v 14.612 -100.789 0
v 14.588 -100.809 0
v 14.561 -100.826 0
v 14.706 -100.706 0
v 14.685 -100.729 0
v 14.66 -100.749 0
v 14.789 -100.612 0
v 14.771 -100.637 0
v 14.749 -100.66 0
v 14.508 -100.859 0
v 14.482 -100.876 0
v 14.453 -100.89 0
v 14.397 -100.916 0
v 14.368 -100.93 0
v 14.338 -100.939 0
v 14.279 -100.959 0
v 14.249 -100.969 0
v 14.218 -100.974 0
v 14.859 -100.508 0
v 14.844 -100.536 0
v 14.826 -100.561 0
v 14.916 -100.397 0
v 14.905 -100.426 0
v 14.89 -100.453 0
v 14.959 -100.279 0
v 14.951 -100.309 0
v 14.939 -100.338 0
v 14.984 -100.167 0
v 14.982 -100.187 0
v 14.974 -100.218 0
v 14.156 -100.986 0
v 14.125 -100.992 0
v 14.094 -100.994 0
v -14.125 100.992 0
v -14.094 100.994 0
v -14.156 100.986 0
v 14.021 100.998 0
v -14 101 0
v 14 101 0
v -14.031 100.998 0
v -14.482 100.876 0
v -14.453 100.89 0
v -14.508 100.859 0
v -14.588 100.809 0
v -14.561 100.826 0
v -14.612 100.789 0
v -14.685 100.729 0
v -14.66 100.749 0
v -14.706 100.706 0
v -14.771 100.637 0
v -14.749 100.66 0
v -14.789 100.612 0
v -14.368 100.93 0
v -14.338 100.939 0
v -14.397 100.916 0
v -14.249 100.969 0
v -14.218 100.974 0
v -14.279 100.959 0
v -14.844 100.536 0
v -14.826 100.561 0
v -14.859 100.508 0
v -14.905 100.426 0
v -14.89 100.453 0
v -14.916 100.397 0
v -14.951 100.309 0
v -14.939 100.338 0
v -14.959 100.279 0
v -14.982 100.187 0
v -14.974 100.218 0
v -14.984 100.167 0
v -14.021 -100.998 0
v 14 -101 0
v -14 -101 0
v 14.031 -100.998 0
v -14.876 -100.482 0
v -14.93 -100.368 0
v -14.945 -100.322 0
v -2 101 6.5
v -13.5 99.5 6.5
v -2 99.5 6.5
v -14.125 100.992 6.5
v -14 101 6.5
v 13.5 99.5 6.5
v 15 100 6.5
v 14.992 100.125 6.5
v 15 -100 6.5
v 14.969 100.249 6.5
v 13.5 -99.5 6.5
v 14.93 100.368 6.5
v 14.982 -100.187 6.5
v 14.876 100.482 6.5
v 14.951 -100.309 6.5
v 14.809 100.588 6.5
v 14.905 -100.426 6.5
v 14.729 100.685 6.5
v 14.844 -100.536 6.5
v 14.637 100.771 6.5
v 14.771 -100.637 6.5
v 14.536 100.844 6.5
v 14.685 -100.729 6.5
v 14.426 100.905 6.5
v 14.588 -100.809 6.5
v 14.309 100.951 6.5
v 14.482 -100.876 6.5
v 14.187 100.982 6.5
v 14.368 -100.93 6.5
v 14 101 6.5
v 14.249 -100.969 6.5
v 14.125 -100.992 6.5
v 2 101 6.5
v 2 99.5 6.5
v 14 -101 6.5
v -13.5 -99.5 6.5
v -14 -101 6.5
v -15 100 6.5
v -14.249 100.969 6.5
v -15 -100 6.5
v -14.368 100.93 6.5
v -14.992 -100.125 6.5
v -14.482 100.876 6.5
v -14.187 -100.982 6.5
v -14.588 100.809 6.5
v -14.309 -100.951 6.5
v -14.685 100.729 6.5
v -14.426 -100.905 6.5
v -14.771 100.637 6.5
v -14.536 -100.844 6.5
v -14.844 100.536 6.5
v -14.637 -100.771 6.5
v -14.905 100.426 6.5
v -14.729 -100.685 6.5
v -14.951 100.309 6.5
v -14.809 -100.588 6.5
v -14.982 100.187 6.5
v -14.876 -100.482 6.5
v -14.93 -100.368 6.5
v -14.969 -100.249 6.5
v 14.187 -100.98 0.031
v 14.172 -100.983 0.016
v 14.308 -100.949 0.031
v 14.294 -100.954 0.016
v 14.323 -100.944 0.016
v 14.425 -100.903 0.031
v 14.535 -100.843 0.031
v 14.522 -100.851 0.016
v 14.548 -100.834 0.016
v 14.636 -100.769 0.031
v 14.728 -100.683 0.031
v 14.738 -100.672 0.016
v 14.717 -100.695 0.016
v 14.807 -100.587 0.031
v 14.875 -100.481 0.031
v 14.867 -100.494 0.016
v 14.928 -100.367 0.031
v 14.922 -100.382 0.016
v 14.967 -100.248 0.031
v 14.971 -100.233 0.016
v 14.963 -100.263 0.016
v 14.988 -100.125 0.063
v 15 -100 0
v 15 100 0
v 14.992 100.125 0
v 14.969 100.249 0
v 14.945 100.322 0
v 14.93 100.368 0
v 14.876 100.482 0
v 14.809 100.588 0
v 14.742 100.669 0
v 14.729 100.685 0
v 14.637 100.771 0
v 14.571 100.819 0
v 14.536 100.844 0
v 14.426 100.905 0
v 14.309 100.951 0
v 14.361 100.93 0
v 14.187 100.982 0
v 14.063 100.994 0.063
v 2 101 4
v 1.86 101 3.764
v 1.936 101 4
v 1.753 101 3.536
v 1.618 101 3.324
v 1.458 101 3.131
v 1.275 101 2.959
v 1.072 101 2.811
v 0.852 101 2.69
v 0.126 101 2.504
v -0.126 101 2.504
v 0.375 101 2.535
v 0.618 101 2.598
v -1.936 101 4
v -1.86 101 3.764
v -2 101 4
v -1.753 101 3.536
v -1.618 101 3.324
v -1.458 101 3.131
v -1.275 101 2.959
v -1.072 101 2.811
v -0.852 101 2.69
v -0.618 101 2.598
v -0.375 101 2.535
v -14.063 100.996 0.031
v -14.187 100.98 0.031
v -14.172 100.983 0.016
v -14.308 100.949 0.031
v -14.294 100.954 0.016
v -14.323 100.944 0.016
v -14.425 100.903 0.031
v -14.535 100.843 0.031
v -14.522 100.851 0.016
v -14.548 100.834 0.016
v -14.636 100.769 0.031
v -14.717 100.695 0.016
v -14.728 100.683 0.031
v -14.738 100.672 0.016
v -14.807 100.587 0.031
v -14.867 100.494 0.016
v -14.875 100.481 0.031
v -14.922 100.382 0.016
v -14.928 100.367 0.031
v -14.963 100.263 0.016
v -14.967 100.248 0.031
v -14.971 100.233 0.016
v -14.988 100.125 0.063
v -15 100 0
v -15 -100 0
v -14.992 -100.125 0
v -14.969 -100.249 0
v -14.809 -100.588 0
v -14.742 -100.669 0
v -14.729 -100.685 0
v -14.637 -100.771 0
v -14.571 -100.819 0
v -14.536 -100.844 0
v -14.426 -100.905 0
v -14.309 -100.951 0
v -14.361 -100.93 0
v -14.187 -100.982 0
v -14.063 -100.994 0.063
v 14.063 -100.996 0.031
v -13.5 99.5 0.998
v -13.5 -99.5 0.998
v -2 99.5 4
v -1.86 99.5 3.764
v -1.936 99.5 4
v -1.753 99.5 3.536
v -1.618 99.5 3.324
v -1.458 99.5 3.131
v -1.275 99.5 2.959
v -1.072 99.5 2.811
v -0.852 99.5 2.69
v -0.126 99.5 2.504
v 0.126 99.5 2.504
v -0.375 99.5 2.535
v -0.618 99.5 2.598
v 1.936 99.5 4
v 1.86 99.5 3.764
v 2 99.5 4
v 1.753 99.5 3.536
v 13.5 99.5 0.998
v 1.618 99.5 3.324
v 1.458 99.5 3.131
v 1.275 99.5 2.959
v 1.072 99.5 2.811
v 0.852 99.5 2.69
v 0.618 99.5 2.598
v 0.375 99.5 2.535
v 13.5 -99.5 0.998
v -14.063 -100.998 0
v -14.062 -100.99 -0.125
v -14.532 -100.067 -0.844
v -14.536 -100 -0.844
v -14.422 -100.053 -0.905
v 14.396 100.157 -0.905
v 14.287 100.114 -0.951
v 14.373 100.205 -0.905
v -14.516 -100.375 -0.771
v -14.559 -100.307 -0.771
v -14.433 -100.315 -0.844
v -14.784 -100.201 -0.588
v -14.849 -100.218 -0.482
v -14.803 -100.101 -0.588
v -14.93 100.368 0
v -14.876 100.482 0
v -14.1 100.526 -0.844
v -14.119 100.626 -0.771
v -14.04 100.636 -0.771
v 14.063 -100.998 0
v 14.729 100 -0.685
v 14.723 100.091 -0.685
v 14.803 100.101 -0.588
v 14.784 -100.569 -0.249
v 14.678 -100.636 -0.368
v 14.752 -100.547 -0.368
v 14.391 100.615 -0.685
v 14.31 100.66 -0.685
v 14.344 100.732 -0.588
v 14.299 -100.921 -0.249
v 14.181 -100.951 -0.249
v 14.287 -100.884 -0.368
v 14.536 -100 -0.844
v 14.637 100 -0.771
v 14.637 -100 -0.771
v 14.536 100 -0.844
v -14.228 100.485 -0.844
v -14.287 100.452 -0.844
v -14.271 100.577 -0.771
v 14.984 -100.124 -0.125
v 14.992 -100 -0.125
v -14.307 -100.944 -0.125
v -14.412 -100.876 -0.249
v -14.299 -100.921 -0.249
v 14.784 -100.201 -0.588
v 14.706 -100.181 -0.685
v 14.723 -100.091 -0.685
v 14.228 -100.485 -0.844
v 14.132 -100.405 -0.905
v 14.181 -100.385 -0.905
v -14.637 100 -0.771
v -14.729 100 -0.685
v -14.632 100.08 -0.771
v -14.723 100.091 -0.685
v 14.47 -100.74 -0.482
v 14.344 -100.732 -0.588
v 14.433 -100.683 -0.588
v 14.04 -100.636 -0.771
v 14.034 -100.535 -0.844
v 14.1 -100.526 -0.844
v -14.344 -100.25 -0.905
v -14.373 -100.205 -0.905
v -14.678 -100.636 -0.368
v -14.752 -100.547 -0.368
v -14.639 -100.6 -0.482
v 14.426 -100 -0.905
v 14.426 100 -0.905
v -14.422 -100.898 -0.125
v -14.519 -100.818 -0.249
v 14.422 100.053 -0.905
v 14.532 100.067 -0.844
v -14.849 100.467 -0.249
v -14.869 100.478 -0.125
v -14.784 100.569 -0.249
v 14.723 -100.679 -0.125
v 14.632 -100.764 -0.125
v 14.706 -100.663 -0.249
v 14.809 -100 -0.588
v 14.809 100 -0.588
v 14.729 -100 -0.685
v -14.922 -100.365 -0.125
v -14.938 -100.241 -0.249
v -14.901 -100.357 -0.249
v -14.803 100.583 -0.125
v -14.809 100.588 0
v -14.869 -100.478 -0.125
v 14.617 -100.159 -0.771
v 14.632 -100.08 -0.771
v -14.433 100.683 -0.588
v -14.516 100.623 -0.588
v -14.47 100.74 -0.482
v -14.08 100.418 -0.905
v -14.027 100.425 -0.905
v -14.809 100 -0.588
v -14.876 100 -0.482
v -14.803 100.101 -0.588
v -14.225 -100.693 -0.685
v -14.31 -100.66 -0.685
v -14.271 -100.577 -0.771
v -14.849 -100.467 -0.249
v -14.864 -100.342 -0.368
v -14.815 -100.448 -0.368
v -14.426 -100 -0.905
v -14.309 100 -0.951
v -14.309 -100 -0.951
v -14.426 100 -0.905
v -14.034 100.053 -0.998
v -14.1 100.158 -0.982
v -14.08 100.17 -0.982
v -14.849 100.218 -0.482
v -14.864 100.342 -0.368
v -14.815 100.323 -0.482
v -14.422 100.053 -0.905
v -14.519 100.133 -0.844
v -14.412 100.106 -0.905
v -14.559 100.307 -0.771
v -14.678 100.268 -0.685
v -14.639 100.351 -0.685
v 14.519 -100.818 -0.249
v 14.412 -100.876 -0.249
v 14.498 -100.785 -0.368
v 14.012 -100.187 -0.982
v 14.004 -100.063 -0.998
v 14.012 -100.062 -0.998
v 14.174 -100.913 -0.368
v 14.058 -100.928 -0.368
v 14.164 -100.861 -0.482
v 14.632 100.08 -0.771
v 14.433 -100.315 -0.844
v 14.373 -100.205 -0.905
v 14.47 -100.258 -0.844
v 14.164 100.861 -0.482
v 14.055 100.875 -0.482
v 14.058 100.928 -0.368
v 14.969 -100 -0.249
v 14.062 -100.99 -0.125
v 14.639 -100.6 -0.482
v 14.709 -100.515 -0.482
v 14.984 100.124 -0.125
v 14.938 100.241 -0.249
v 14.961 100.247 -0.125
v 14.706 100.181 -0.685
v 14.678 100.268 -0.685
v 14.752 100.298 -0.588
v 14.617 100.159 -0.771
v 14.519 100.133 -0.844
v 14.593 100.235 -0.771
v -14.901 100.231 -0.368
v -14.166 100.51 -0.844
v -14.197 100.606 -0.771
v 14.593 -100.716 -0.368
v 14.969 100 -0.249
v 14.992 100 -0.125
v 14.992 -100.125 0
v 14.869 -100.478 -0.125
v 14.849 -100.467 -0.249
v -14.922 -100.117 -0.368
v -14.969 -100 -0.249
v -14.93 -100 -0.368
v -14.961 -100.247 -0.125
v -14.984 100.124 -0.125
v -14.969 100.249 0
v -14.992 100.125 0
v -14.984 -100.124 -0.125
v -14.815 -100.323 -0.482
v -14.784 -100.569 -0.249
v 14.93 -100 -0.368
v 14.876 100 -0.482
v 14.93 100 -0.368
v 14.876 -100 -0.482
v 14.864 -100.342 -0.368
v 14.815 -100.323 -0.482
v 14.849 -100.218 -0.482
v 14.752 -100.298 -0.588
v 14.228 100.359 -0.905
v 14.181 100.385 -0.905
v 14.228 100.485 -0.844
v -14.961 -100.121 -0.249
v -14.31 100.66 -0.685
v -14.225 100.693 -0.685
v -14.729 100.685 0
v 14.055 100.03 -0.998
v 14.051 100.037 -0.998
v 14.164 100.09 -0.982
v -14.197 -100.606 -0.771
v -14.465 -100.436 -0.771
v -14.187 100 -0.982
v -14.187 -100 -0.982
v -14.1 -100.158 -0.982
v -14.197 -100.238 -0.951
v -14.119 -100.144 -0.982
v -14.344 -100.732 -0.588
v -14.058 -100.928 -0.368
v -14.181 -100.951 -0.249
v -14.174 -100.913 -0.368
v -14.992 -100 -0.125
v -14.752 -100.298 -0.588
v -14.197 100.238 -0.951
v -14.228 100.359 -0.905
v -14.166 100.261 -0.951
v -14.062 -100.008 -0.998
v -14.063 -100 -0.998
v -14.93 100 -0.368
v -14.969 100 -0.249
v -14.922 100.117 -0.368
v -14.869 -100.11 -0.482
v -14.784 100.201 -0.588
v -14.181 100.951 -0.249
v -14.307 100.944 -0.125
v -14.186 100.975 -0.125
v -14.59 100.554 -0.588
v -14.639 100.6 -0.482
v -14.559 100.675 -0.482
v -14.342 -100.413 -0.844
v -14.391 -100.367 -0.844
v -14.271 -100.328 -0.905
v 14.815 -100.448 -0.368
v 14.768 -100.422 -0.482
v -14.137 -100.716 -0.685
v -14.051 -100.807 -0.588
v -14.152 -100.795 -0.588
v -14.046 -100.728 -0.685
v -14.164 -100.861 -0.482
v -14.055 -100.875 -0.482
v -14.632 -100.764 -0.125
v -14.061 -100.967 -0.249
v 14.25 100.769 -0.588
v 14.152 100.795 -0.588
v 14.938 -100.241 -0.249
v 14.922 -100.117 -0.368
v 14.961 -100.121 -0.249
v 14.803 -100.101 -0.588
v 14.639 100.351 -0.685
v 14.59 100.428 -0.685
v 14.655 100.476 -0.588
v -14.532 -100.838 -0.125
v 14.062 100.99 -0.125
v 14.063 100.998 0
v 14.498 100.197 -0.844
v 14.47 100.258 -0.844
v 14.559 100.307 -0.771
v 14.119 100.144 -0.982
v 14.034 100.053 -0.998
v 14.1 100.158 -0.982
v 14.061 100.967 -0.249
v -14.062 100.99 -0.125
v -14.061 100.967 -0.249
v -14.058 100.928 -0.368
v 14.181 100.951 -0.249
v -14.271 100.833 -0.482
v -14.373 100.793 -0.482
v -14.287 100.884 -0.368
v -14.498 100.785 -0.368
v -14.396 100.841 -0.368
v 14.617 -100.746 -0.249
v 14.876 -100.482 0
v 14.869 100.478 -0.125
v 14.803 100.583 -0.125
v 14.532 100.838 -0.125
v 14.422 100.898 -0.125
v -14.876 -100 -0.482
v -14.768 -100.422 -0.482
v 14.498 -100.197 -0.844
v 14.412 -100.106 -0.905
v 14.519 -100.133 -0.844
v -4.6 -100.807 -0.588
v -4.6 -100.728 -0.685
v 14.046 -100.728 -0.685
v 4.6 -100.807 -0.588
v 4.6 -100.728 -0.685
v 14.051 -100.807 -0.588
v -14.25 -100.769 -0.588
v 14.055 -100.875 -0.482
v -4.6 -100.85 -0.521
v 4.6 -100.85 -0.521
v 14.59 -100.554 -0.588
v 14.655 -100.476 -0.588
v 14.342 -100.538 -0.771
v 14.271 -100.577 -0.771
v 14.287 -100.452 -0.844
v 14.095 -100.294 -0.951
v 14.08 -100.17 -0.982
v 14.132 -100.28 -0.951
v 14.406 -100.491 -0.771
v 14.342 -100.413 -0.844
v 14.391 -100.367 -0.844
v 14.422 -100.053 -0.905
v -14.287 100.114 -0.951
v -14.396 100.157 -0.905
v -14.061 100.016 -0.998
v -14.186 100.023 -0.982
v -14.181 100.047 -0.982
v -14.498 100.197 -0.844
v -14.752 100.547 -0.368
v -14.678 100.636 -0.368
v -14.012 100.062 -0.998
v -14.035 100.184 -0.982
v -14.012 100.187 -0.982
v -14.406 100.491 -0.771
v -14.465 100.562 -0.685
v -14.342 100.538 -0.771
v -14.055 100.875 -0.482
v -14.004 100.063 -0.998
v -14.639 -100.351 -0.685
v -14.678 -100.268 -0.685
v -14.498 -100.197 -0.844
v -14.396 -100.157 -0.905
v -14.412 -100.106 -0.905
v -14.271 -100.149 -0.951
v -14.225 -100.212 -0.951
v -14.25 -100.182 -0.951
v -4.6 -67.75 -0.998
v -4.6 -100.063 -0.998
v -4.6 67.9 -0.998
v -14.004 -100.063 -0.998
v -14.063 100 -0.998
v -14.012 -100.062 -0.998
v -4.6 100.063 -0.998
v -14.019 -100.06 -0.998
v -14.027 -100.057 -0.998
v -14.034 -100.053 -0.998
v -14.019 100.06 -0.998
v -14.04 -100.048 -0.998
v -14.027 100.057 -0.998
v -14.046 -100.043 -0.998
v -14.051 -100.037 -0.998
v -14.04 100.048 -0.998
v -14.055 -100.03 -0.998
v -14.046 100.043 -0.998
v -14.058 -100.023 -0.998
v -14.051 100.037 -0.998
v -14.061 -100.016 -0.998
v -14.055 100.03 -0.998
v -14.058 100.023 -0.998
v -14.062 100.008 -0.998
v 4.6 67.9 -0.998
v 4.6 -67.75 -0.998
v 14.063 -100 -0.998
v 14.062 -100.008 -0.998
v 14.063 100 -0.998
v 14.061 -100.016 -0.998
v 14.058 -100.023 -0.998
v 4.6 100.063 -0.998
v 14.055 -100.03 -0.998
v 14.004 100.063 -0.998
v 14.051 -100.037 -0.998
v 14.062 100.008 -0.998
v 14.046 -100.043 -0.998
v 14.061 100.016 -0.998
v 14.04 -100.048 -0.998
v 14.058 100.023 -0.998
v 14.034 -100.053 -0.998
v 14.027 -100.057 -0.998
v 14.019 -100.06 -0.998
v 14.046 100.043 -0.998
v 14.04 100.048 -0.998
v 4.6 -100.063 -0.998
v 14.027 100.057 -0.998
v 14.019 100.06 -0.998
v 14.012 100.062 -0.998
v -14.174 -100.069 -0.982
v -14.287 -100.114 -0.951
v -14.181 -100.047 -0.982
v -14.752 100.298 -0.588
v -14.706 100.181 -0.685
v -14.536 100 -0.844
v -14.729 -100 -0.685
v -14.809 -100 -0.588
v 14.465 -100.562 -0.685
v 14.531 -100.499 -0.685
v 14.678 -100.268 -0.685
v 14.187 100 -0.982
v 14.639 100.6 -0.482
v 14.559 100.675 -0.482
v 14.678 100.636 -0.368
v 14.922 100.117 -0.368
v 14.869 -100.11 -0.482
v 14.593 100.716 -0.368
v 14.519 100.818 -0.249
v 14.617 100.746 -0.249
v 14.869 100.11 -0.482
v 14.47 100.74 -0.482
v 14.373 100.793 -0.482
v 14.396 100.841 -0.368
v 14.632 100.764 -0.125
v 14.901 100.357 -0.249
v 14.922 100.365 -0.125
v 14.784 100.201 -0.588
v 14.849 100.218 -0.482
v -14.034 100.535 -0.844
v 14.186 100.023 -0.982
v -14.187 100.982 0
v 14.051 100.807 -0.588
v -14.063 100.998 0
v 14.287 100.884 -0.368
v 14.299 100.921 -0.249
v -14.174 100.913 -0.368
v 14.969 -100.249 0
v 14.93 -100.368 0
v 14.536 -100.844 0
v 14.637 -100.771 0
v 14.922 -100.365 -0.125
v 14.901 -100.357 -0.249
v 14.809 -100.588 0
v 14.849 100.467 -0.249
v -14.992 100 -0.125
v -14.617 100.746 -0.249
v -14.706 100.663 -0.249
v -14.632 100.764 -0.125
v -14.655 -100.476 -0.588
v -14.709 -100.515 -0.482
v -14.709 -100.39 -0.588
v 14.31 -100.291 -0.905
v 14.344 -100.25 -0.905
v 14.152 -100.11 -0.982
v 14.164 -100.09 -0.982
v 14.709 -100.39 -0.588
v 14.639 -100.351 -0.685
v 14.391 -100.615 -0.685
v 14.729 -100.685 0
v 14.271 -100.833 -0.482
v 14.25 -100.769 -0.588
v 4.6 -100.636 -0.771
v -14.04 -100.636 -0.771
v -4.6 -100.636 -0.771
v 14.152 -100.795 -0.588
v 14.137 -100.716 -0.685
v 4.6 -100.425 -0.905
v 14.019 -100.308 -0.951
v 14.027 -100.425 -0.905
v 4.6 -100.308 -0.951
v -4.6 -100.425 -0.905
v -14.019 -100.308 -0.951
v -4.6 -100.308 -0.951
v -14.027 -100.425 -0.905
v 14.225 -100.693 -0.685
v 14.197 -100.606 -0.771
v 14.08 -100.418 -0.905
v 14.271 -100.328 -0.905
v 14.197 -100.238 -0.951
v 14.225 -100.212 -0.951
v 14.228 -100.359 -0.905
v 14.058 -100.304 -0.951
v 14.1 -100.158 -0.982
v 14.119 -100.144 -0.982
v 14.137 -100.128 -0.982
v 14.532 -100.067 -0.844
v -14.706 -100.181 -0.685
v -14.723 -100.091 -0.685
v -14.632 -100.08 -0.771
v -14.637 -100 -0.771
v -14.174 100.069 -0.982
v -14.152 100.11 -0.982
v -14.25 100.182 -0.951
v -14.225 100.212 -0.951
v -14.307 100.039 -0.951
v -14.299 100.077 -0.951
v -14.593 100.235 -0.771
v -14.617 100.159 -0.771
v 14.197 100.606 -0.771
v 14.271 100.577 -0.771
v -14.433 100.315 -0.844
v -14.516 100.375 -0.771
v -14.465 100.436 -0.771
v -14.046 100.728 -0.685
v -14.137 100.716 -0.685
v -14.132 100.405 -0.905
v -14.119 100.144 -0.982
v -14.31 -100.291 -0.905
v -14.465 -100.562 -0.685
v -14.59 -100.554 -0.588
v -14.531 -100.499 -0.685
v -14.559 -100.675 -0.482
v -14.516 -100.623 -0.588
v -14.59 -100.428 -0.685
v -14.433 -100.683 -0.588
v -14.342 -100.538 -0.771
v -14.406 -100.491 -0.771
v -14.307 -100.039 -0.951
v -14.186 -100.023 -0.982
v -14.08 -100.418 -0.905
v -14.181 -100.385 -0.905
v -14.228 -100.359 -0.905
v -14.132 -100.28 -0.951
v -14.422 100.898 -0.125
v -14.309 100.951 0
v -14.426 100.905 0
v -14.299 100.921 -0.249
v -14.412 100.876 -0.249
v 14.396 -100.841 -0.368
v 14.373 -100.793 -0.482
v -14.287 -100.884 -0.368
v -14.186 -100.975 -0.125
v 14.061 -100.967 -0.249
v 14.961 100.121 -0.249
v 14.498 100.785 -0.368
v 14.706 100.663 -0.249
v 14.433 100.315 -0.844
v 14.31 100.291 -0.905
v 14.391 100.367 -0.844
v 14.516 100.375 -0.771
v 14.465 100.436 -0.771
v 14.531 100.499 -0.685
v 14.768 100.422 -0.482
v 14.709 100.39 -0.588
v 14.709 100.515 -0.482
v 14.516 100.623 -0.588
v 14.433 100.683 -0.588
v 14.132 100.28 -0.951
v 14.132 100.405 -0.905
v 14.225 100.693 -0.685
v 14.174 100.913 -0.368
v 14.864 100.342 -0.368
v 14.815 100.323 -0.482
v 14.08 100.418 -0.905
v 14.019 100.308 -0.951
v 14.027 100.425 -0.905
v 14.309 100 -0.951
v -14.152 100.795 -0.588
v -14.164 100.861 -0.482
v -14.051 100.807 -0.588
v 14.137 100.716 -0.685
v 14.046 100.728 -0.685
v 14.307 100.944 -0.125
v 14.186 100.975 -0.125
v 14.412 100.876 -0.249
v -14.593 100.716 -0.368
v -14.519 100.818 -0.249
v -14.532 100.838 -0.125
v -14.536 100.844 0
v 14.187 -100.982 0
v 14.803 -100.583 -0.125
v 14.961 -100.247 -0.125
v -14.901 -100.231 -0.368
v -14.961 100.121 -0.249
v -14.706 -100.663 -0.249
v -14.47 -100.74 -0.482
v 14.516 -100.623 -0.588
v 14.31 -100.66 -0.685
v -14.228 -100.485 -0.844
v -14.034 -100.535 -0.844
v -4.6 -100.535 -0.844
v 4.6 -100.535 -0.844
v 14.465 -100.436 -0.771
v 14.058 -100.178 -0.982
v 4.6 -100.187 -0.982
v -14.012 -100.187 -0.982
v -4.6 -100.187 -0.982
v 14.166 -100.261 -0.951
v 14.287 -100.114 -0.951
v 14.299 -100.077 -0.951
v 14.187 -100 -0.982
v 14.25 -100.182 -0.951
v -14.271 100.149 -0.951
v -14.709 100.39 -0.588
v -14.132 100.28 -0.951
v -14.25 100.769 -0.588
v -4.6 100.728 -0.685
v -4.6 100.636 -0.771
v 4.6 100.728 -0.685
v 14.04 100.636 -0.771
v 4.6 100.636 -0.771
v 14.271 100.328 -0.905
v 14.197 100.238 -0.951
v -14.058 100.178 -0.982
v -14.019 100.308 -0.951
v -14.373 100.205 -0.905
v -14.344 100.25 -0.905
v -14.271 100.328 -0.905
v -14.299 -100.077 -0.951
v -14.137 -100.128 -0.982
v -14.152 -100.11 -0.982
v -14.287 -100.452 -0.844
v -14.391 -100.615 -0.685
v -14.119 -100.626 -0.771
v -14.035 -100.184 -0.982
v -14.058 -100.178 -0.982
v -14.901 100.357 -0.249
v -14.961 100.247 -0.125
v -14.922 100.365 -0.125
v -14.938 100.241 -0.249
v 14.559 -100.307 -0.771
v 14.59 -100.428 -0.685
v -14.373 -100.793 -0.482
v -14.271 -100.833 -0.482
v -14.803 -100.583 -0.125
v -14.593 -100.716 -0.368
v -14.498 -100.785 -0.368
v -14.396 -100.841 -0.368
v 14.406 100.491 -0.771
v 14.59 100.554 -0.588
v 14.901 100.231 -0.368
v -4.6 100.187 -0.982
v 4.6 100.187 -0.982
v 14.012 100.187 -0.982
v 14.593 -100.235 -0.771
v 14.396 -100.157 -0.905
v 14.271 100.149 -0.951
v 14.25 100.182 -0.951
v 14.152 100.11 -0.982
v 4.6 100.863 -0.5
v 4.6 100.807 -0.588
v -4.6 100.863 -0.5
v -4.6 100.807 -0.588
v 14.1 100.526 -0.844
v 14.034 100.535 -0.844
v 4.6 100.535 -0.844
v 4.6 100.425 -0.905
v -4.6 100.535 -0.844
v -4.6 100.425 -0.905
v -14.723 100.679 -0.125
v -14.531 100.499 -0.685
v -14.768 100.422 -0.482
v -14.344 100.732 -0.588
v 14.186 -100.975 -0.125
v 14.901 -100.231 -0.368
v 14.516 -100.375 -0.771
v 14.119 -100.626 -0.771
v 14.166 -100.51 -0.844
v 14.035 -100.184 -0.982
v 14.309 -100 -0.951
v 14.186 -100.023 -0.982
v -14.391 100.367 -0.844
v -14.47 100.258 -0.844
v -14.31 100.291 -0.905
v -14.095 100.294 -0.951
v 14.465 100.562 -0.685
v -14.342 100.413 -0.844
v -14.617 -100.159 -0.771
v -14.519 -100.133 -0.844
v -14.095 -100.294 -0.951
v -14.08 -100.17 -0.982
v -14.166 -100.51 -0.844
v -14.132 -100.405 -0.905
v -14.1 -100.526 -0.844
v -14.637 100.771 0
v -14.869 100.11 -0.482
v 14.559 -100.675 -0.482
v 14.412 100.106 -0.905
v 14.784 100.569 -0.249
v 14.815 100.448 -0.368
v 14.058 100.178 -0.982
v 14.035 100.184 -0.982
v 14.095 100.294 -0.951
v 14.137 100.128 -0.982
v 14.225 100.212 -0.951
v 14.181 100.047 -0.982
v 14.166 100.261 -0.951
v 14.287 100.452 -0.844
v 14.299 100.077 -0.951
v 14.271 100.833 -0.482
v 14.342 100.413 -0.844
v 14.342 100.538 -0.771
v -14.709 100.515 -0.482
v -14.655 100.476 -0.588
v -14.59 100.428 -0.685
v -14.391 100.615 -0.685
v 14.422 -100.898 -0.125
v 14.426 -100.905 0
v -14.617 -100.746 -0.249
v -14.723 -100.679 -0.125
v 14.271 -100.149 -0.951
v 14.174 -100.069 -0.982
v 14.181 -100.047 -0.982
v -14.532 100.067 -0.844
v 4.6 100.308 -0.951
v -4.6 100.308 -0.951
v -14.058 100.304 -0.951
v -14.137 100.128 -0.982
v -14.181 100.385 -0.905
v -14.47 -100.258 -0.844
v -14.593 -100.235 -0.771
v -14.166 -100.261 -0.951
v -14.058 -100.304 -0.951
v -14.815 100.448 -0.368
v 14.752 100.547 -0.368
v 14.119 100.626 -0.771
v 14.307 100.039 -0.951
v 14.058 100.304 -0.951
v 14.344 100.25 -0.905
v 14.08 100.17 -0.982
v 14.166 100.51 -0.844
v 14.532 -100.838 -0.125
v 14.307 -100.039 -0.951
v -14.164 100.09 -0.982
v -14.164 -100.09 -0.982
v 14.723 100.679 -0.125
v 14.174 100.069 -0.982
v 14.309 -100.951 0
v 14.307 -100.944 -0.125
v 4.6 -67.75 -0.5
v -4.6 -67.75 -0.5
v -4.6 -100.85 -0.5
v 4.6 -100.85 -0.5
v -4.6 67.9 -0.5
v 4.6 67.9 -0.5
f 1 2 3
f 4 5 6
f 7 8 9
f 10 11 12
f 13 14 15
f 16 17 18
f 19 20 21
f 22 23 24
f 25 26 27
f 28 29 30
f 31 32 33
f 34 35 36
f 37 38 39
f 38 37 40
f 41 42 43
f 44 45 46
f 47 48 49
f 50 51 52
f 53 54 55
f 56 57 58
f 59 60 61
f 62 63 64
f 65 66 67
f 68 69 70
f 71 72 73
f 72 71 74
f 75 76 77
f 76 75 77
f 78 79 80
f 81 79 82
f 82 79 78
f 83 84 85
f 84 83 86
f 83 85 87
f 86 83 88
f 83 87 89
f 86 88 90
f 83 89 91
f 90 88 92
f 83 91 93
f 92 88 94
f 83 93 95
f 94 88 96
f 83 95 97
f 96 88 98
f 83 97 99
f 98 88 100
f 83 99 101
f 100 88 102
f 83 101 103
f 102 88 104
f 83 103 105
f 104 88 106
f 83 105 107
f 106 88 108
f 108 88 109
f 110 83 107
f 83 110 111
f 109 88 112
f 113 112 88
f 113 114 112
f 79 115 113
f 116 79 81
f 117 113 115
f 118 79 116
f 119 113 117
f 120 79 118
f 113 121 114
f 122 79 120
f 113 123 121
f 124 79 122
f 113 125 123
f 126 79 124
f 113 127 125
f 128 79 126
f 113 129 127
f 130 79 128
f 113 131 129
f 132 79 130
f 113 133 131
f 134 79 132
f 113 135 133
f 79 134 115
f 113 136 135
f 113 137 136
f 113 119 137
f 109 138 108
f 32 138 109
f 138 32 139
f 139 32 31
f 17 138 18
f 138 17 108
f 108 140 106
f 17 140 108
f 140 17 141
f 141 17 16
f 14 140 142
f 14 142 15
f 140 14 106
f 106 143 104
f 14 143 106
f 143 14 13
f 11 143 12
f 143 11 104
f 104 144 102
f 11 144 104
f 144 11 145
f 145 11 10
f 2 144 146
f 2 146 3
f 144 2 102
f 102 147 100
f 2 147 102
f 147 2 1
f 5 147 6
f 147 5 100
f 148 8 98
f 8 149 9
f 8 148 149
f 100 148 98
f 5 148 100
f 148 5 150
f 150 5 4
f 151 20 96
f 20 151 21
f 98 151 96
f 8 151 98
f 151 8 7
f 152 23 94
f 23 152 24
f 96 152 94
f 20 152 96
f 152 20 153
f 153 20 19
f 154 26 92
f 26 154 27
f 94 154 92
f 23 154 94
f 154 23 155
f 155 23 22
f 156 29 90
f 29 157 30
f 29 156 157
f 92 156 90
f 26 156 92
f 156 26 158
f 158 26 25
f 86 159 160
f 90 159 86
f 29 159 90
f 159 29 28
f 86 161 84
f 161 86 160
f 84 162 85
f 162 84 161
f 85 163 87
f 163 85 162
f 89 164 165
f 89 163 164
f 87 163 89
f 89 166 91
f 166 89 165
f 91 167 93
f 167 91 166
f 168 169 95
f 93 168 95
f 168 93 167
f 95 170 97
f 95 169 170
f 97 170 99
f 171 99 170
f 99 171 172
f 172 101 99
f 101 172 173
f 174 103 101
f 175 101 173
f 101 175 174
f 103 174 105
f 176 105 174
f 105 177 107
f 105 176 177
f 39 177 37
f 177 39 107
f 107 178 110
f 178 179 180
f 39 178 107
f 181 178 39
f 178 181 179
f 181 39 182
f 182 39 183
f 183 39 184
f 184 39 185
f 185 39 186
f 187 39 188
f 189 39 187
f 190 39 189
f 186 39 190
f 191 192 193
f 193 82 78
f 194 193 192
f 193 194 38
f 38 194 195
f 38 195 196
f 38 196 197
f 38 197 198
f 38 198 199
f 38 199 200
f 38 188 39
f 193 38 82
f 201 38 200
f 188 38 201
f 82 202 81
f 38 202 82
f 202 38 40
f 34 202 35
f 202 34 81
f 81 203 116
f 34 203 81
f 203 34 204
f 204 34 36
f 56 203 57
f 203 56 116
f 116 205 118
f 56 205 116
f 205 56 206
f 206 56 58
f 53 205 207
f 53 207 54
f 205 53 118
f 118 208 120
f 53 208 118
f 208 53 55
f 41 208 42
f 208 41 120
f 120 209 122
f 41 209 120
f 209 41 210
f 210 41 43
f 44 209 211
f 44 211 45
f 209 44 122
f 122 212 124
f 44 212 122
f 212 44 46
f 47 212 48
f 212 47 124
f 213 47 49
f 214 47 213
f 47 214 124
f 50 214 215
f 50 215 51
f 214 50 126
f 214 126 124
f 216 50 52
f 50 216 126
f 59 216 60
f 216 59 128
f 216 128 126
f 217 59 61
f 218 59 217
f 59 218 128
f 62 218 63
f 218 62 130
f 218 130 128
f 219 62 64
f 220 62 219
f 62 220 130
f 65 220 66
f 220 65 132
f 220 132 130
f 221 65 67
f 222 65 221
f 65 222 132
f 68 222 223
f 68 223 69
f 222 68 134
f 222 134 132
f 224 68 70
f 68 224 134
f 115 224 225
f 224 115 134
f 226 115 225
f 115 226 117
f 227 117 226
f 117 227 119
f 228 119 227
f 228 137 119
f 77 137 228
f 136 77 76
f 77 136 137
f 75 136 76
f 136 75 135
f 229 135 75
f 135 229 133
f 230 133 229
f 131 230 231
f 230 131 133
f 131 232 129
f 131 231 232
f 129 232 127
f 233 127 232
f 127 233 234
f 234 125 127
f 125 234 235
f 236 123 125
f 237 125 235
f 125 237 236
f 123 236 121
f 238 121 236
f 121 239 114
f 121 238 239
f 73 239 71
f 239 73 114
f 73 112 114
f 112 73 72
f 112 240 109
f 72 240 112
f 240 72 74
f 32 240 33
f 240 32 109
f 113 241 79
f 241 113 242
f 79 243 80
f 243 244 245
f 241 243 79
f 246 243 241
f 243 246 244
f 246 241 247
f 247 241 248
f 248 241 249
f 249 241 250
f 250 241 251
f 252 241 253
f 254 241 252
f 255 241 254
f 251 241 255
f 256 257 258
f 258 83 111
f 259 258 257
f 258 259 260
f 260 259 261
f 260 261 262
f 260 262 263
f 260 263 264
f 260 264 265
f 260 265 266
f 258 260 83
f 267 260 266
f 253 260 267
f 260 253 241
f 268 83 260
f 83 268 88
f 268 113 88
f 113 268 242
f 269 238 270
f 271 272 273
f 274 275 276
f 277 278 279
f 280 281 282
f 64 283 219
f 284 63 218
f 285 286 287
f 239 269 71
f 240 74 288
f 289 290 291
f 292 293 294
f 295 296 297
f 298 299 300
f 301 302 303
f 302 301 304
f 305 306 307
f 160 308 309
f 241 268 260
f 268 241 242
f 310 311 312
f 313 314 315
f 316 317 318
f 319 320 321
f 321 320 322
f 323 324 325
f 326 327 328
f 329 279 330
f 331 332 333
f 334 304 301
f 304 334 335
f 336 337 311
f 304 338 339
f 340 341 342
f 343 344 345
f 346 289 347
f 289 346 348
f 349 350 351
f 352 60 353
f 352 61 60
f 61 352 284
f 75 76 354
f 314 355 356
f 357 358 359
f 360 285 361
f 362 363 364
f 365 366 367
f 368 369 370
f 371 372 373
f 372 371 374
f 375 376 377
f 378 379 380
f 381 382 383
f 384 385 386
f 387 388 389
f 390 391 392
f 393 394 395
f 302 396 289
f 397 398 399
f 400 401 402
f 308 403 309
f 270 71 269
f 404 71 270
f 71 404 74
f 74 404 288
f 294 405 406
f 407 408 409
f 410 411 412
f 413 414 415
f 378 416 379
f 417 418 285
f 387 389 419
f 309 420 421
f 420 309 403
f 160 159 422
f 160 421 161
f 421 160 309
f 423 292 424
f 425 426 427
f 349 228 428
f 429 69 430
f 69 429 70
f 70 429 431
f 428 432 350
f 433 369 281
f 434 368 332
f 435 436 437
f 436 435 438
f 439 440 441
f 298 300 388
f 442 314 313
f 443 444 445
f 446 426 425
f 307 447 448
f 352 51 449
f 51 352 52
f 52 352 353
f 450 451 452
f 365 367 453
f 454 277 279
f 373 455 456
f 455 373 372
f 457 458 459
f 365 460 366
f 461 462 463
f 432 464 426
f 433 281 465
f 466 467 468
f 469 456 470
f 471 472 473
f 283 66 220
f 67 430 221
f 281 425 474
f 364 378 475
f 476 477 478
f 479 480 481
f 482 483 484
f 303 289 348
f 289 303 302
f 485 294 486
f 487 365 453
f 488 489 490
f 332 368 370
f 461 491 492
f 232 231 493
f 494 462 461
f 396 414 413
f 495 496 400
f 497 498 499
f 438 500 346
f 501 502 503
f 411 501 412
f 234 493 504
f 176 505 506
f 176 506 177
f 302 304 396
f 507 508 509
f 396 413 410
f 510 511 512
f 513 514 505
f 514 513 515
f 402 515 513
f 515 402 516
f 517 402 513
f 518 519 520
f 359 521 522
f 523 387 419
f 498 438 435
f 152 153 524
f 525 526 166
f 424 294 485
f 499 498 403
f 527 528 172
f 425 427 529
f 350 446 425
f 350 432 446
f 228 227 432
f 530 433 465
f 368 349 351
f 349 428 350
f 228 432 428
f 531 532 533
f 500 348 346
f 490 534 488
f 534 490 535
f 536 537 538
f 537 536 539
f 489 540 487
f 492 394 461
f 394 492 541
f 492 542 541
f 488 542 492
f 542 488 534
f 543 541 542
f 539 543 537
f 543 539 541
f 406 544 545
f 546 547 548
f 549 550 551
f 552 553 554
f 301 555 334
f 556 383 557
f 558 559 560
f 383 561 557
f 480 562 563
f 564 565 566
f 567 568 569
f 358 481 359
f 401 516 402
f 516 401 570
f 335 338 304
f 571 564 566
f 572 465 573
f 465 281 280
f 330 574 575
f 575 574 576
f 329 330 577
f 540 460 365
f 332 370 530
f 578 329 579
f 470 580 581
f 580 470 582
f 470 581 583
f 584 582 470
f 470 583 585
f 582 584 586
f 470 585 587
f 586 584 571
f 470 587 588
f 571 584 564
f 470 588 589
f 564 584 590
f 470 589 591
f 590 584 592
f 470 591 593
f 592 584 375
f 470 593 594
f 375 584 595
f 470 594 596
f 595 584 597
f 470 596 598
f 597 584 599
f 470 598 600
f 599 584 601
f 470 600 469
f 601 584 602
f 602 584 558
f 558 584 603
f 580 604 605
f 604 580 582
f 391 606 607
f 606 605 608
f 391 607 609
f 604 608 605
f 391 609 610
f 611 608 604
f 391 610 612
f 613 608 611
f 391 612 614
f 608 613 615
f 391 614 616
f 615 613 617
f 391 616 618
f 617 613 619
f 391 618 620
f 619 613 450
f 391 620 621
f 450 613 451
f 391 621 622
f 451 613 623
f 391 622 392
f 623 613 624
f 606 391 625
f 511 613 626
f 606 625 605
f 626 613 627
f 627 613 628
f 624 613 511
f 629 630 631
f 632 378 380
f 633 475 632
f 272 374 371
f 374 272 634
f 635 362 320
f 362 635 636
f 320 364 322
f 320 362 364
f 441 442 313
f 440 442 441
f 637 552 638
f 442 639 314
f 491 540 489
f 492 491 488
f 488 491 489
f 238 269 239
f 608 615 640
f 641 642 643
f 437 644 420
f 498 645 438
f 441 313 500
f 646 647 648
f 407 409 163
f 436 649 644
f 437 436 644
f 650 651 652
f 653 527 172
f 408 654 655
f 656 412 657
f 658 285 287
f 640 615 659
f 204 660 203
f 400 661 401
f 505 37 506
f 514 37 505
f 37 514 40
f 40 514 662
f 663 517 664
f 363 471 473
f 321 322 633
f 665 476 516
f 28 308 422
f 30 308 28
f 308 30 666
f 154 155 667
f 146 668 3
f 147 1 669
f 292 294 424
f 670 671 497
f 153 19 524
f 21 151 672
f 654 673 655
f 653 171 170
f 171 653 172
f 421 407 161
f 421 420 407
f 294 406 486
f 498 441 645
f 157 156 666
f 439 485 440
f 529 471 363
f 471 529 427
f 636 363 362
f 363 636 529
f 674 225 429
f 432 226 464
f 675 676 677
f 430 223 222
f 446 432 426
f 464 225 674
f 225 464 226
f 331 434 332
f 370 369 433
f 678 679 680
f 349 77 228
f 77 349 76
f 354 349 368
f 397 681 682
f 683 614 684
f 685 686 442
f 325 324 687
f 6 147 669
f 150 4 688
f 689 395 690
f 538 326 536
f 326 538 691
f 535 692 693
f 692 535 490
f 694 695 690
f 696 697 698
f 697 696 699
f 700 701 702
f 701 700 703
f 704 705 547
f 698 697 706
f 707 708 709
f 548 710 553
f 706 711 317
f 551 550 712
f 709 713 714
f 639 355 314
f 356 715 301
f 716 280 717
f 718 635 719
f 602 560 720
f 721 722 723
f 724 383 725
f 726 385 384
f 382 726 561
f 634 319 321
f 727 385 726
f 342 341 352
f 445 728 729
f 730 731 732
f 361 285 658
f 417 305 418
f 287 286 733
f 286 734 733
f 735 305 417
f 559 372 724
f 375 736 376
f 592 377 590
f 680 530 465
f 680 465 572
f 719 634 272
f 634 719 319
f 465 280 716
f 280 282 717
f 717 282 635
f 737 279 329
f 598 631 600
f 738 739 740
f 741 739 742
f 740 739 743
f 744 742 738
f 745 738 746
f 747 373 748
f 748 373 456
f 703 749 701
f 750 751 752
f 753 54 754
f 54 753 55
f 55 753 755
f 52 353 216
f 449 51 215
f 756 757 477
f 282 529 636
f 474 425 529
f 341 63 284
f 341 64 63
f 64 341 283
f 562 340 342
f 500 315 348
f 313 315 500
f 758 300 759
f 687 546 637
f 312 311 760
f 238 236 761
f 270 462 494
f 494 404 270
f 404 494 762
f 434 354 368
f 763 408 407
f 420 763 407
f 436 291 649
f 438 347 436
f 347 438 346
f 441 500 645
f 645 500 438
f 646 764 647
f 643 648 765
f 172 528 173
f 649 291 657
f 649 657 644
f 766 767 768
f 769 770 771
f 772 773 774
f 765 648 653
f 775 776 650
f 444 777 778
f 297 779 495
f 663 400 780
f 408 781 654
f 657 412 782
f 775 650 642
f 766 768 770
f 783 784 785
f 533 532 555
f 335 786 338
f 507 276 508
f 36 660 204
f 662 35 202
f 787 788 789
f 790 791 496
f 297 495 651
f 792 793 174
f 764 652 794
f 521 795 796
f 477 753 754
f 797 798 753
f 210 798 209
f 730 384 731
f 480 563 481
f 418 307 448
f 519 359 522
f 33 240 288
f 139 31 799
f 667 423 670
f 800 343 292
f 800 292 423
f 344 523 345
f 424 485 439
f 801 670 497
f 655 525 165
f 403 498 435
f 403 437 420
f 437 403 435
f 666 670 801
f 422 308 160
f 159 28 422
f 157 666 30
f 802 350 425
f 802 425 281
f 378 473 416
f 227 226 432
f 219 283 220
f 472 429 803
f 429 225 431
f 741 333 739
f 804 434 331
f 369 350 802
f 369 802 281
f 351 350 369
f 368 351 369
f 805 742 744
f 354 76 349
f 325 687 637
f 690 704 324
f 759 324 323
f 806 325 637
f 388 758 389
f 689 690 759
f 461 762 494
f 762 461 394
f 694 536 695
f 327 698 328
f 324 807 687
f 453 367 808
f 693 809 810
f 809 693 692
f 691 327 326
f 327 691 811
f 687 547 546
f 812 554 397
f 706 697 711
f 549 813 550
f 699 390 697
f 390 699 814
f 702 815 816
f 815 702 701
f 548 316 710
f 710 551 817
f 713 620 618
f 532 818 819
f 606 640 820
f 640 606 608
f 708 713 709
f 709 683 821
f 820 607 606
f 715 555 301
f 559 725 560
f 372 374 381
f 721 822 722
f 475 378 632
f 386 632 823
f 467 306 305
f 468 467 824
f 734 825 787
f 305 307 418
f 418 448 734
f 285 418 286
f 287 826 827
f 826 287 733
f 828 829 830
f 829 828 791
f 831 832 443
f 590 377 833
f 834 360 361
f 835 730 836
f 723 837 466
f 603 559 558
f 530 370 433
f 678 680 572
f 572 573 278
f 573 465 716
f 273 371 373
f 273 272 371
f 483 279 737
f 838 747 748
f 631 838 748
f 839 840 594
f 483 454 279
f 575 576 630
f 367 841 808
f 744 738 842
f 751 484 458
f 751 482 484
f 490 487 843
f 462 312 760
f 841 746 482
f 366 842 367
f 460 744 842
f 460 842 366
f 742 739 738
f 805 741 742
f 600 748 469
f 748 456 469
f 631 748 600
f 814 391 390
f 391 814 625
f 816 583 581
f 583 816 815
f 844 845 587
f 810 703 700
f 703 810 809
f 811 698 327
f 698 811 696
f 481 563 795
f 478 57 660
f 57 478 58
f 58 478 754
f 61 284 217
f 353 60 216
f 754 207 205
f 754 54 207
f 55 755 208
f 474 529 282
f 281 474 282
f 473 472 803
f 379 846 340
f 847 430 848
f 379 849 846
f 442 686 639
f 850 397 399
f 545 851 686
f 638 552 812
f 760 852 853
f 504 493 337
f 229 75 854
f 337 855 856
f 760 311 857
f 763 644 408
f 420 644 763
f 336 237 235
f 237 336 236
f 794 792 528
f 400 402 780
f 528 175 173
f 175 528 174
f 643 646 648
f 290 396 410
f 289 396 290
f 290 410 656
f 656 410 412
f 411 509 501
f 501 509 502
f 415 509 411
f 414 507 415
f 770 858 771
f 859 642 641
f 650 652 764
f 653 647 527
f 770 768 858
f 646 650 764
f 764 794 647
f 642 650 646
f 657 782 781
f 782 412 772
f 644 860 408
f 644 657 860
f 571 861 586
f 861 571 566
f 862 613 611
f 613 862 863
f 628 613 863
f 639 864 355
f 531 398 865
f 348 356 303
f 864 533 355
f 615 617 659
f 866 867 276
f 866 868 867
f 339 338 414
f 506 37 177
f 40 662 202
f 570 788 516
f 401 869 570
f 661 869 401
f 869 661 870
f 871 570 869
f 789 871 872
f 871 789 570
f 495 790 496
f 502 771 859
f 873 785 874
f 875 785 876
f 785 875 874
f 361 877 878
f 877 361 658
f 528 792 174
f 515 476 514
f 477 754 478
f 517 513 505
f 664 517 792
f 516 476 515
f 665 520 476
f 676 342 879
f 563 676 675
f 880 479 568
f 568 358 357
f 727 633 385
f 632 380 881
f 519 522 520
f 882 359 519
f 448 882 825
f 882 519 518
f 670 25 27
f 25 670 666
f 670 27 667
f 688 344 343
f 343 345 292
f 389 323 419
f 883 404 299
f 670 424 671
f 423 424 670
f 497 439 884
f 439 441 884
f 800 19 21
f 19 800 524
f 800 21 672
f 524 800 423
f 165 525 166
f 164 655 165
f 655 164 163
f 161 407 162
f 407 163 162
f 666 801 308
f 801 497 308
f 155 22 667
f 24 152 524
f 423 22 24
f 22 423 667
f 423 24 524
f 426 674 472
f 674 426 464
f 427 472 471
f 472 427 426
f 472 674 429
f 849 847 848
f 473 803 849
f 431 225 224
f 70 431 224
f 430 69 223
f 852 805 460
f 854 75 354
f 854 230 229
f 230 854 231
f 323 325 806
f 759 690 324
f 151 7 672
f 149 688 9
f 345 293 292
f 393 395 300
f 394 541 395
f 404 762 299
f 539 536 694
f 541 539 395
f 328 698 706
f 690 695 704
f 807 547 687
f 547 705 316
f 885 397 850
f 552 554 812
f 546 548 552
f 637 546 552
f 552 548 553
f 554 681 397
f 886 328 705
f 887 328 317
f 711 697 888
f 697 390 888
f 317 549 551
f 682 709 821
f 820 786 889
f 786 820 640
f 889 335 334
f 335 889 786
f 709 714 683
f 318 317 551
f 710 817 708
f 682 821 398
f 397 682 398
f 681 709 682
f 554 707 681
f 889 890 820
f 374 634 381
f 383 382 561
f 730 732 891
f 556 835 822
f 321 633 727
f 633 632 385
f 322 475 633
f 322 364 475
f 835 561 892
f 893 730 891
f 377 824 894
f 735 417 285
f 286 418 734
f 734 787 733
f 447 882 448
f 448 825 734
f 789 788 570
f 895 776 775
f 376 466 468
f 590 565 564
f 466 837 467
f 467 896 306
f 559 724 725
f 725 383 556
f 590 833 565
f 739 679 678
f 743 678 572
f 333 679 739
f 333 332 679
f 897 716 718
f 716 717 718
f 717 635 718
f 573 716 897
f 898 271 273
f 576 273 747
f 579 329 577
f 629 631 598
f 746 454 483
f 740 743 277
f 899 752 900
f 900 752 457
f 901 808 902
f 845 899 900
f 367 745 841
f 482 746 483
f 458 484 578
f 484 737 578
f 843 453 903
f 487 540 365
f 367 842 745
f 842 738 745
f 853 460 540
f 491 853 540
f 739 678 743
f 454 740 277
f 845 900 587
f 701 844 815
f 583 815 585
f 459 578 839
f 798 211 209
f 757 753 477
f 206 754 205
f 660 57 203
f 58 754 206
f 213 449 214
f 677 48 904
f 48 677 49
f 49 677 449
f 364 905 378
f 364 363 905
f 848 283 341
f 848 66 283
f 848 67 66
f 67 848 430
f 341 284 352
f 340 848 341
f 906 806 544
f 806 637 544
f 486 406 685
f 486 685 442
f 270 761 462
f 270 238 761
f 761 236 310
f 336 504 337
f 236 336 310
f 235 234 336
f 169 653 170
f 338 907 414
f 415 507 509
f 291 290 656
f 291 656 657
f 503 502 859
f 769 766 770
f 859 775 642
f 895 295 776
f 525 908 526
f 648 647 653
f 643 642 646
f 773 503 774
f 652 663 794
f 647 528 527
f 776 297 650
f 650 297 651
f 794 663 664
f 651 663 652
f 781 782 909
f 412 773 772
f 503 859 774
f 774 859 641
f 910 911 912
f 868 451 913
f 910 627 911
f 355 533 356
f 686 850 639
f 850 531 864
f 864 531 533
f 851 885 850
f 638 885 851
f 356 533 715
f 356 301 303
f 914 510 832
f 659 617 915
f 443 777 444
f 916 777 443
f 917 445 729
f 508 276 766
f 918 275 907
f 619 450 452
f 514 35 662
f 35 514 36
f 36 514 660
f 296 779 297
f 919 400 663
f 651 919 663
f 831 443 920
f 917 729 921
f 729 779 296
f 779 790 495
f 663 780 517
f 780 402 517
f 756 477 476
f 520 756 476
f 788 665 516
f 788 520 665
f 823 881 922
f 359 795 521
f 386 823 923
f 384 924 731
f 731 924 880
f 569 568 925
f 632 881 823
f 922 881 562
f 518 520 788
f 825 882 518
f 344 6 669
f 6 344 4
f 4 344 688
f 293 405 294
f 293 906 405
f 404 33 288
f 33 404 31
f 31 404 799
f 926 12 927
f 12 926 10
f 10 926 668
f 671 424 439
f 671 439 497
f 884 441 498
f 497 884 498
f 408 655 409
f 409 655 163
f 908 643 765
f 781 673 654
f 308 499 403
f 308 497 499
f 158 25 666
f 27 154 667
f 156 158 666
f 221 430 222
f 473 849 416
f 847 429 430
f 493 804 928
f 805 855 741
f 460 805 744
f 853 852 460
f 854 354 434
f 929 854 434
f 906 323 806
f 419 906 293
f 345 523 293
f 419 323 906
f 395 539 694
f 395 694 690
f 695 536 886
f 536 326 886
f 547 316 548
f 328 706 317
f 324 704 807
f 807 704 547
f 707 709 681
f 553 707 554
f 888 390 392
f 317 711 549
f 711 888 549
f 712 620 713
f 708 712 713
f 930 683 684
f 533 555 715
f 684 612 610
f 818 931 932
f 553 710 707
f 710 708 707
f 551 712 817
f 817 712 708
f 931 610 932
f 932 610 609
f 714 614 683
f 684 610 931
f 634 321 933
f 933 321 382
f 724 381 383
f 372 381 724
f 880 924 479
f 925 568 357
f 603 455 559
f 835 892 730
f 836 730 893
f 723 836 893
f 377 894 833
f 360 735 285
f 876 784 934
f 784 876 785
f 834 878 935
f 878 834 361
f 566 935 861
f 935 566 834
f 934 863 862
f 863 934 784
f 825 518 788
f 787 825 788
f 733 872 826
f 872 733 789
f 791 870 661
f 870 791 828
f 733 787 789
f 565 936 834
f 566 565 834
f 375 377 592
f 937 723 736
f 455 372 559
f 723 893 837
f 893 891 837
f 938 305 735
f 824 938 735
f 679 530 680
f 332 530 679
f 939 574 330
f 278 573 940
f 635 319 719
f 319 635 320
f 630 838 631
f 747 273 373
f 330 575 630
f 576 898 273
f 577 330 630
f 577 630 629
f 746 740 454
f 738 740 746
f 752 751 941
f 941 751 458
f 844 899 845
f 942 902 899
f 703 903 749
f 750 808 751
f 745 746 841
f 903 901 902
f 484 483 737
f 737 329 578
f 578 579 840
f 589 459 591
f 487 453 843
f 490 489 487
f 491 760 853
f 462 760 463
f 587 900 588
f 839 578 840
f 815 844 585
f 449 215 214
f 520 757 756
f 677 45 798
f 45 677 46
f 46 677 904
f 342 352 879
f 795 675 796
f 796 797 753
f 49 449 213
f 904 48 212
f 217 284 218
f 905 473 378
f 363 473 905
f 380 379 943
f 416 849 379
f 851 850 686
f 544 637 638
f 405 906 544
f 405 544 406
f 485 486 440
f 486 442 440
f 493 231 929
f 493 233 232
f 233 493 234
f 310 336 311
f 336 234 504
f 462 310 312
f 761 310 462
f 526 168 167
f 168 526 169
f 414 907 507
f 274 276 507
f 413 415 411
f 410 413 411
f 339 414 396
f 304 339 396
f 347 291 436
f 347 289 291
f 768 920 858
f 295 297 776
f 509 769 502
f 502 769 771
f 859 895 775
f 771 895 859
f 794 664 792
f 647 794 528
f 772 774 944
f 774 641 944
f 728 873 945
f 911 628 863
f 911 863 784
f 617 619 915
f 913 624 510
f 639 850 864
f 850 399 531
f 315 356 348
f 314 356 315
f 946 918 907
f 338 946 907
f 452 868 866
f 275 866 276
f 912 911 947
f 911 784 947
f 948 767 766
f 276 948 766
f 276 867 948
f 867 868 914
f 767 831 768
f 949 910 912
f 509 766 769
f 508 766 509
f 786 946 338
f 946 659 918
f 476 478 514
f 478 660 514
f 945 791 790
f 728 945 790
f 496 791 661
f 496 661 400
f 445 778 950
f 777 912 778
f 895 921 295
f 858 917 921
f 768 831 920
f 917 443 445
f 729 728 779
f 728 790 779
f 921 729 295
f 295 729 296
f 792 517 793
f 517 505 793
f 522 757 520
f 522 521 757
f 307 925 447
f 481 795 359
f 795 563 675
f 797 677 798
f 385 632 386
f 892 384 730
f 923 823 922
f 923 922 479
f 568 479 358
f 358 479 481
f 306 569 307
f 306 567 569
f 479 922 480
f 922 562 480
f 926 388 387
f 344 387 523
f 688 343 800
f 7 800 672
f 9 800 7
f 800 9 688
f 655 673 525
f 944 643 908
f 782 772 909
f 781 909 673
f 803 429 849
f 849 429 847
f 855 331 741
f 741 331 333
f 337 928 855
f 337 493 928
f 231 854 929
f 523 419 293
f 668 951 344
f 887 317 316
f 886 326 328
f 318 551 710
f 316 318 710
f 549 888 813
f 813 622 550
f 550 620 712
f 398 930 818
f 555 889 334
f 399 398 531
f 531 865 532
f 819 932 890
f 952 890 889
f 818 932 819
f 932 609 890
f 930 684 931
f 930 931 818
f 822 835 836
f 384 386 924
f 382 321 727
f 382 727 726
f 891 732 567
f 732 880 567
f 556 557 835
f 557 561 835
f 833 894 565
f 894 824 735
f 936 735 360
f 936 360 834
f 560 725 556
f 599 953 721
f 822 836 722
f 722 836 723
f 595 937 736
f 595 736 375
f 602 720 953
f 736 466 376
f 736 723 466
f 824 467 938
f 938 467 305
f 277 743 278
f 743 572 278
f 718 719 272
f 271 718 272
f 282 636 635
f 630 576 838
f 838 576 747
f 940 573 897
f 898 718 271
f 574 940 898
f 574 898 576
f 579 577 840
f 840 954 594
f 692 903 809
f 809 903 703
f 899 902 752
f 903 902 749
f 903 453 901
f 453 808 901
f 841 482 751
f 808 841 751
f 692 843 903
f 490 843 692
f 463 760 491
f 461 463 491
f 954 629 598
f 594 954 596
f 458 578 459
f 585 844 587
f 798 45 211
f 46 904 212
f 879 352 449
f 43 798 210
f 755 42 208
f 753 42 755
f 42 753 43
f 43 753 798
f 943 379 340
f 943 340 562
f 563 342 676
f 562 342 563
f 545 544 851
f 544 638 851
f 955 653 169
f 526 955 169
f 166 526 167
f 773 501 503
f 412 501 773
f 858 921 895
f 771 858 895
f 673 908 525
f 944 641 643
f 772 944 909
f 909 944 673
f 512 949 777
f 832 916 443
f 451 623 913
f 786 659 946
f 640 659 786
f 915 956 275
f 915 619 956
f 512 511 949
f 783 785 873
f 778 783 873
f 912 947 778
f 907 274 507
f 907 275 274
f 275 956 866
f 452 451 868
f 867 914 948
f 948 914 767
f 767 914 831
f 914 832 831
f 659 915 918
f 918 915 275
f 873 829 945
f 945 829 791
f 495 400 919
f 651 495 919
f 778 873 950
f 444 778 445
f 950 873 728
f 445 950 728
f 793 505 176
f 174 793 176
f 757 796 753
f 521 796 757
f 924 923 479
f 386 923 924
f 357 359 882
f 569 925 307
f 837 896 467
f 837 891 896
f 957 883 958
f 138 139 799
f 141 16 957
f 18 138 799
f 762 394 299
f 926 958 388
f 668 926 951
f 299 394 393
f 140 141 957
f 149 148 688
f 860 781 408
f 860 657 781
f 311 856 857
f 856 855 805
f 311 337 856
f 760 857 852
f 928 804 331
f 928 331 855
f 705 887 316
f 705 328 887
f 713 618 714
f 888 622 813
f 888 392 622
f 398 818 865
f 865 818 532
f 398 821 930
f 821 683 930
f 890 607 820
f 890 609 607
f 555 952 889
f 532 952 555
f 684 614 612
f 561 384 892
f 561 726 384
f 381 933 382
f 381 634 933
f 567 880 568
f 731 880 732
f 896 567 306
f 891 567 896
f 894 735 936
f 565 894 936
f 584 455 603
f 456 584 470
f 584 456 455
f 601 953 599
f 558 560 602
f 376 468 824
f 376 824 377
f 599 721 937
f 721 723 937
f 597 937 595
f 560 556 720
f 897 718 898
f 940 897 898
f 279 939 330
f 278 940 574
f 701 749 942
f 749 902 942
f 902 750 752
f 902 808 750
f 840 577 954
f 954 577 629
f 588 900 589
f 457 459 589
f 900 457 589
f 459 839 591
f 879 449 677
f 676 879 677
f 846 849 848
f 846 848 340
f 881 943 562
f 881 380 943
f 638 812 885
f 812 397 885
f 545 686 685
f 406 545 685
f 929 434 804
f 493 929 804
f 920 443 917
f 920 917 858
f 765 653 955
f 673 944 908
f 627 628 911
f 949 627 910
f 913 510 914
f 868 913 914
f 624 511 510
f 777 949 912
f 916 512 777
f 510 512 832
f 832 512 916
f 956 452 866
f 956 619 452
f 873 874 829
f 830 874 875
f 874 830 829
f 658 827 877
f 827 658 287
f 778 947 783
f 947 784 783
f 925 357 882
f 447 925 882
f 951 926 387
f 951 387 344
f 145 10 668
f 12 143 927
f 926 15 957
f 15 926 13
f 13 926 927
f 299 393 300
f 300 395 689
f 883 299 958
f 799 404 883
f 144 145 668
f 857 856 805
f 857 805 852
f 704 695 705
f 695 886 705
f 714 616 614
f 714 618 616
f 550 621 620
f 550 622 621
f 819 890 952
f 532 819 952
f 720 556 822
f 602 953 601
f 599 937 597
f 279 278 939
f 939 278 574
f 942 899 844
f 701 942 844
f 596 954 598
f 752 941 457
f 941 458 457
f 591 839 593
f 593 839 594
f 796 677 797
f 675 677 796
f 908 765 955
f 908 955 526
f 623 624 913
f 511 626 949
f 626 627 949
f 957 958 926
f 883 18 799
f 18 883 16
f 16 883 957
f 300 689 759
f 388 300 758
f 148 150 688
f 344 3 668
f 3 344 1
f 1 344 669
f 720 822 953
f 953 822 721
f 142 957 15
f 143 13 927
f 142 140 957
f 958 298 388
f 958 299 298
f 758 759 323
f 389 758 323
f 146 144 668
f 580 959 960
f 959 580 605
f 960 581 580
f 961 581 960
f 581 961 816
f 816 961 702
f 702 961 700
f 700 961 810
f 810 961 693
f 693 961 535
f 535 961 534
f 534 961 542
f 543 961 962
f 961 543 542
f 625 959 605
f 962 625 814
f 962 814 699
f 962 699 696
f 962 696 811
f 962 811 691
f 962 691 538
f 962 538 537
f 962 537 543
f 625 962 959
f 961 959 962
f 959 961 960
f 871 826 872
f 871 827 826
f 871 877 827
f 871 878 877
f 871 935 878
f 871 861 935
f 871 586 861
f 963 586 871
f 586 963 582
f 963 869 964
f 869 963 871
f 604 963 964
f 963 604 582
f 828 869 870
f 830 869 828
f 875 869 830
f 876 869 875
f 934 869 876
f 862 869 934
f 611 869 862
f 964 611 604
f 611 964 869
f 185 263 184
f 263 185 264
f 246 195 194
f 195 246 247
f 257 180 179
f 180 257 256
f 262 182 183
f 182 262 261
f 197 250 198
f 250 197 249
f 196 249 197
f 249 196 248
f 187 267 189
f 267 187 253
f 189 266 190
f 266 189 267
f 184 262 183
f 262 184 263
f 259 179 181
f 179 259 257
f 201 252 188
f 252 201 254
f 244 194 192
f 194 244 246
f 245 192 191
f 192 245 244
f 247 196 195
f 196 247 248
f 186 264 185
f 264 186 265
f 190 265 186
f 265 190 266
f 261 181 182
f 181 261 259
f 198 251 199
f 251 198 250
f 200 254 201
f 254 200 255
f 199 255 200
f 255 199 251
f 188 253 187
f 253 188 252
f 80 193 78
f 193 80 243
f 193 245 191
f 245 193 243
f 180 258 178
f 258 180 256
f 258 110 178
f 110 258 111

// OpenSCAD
$fn=50;
BOX_W = 28; // Box Width
BOX_L = 200;// Box Length
BOX_H = 6.5; // Box Height
CORNER_RADIUS = 1.0; // Radius of corners
WALL = 1;// Wall Thickness

//KEEL_OUTSIDE_WIDTH=9.1;
KEEL_WIDTH=9.2;
KEEL_DEPTH=2;
KEEL_LENGTH=31;

CON_OUTSIDE=6;
CON_INSIDE=4;
CON_LENGTH=3;

difference() {
  union() {
  linear_extrude( BOX_H )
    difference(){
      offset(r=CORNER_RADIUS) square( [BOX_W, BOX_L], center=true );
      offset(r= CORNER_RADIUS - WALL) square([BOX_W-WALL, BOX_L-WALL], center=true );
    };

    coordinates = [ [0,0],[0,BOX_L],[BOX_W,BOX_L],[BOX_W,0] ];

    translate ( [-BOX_W/2, -BOX_L/2] )
      hull()
      for (i = coordinates)
        translate(i) sphere(CORNER_RADIUS);
  }
  // opposite audio connector side
  translate([0,-67.75,BOX_H-8])
  rotate([90,0,0])
  #linear_extrude(KEEL_LENGTH+2.1) square([KEEL_WIDTH,KEEL_DEPTH], center=true);  
  
  // audio connector side
  translate([0,101,BOX_H-8])
  rotate([90,0,0])
  #linear_extrude(KEEL_LENGTH+2.1) square([KEEL_WIDTH,KEEL_DEPTH], center=true);  
  
  translate([0,102.0,BOX_H-2])
  rotate([90,0,0])
  cylinder(h=CON_LENGTH,r=CON_INSIDE/2);
  
  translate([0,102.0,BOX_H-1])
  rotate([90,0,0])
  //cylinder(h=CON_LENGTH+1,r=CON_INSIDE/2);
  linear_extrude(3.0) square([4.0,3], center=true);
}
